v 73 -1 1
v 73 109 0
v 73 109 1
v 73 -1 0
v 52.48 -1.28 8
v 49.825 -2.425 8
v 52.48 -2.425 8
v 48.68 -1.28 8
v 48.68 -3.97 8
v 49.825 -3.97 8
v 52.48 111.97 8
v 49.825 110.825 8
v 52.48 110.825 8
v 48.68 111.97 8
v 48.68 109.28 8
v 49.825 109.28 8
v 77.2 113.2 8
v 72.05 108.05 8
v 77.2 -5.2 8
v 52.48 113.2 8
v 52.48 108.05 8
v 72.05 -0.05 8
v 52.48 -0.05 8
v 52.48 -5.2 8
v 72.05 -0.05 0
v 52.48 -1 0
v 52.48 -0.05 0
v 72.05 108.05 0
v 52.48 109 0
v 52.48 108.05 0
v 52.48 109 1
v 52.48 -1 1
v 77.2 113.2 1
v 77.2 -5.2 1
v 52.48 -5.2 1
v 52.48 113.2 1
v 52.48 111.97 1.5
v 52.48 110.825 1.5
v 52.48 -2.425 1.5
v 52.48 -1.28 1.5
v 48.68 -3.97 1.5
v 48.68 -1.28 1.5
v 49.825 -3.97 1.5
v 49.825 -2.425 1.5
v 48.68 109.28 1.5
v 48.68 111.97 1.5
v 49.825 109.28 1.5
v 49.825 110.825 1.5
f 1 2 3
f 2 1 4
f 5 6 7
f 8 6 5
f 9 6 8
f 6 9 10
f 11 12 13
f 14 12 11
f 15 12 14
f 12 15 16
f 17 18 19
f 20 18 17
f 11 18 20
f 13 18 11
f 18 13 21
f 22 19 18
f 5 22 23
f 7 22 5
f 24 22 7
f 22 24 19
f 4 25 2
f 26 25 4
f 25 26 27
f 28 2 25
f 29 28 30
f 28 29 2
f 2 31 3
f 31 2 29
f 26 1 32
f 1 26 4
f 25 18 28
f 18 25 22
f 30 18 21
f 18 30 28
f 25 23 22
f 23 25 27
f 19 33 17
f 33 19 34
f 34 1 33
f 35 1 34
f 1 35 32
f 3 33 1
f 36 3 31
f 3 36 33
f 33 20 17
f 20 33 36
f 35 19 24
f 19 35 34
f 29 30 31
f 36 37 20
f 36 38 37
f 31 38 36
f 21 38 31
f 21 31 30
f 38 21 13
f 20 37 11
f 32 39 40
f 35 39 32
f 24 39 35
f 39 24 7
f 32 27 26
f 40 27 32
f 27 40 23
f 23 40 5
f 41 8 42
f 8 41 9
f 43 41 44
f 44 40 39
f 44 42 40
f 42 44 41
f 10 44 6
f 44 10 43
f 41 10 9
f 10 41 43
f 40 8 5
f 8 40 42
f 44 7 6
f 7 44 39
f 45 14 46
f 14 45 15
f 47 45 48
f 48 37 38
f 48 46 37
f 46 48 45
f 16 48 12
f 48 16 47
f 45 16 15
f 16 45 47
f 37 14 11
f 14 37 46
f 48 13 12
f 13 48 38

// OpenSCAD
// Generated by SolidPython 1.0.4 on 2021-07-12 16:52:23


union() {
	union() {
		difference() {
			union() {
				difference() {
					translate(v = [-1.0000000000, -1.0000000000, 0]) {
						cube(size = [74.0000000000, 110.0000000000, 8]);
					}
					translate(v = [-0.0500000000, -0.0500000000, 0]) {
						cube(size = [72.1000000000, 108.1000000000, 8]);
					}
				}
				translate(v = [0, 0, 1]) {
					difference() {
						translate(v = [-5.2000000000, -5.2000000000, 0]) {
							cube(size = [82.4000000000, 118.4000000000, 7]);
						}
						translate(v = [-1.0000000000, -1.0000000000, 0]) {
							cube(size = [74.0000000000, 110.0000000000, 7]);
						}
					}
				}
			}
			translate(v = [-5.2000000000, -5.2000000000, 0]) {
				cube(size = [57.6800000000, 118.4000000000, 8]);
			}
		}
		translate(v = [48.4800000000, -4.1700000000, 0]) {
			translate(v = [0.2000000000, 0.2000000000, 0]) {
				translate(v = [0, 0, 1.5000000000]) {
					translate(v = [3.8000000000, 2.6900000000, 0]) {
						rotate(a = -180) {
							union() {
								translate(v = [2.6550000000, 0, 0]) {
									cube(size = [1.1450000000, 2.6900000000, 6.5000000000]);
								}
								cube(size = [3.8000000000, 1.1450000000, 6.5000000000]);
							}
						}
					}
				}
			}
		}
	}
	translate(v = [48.4800000000, 109.0800000000, 0]) {
		translate(v = [0.2000000000, 0.2000000000, 0]) {
			translate(v = [0, 0, 1.5000000000]) {
				translate(v = [3.8000000000, 2.6900000000, 0]) {
					rotate(a = -180) {
						union() {
							translate(v = [2.6550000000, 0, 0]) {
								cube(size = [1.1450000000, 2.6900000000, 6.5000000000]);
							}
							cube(size = [3.8000000000, 1.1450000000, 6.5000000000]);
						}
					}
				}
			}
		}
	}
}
